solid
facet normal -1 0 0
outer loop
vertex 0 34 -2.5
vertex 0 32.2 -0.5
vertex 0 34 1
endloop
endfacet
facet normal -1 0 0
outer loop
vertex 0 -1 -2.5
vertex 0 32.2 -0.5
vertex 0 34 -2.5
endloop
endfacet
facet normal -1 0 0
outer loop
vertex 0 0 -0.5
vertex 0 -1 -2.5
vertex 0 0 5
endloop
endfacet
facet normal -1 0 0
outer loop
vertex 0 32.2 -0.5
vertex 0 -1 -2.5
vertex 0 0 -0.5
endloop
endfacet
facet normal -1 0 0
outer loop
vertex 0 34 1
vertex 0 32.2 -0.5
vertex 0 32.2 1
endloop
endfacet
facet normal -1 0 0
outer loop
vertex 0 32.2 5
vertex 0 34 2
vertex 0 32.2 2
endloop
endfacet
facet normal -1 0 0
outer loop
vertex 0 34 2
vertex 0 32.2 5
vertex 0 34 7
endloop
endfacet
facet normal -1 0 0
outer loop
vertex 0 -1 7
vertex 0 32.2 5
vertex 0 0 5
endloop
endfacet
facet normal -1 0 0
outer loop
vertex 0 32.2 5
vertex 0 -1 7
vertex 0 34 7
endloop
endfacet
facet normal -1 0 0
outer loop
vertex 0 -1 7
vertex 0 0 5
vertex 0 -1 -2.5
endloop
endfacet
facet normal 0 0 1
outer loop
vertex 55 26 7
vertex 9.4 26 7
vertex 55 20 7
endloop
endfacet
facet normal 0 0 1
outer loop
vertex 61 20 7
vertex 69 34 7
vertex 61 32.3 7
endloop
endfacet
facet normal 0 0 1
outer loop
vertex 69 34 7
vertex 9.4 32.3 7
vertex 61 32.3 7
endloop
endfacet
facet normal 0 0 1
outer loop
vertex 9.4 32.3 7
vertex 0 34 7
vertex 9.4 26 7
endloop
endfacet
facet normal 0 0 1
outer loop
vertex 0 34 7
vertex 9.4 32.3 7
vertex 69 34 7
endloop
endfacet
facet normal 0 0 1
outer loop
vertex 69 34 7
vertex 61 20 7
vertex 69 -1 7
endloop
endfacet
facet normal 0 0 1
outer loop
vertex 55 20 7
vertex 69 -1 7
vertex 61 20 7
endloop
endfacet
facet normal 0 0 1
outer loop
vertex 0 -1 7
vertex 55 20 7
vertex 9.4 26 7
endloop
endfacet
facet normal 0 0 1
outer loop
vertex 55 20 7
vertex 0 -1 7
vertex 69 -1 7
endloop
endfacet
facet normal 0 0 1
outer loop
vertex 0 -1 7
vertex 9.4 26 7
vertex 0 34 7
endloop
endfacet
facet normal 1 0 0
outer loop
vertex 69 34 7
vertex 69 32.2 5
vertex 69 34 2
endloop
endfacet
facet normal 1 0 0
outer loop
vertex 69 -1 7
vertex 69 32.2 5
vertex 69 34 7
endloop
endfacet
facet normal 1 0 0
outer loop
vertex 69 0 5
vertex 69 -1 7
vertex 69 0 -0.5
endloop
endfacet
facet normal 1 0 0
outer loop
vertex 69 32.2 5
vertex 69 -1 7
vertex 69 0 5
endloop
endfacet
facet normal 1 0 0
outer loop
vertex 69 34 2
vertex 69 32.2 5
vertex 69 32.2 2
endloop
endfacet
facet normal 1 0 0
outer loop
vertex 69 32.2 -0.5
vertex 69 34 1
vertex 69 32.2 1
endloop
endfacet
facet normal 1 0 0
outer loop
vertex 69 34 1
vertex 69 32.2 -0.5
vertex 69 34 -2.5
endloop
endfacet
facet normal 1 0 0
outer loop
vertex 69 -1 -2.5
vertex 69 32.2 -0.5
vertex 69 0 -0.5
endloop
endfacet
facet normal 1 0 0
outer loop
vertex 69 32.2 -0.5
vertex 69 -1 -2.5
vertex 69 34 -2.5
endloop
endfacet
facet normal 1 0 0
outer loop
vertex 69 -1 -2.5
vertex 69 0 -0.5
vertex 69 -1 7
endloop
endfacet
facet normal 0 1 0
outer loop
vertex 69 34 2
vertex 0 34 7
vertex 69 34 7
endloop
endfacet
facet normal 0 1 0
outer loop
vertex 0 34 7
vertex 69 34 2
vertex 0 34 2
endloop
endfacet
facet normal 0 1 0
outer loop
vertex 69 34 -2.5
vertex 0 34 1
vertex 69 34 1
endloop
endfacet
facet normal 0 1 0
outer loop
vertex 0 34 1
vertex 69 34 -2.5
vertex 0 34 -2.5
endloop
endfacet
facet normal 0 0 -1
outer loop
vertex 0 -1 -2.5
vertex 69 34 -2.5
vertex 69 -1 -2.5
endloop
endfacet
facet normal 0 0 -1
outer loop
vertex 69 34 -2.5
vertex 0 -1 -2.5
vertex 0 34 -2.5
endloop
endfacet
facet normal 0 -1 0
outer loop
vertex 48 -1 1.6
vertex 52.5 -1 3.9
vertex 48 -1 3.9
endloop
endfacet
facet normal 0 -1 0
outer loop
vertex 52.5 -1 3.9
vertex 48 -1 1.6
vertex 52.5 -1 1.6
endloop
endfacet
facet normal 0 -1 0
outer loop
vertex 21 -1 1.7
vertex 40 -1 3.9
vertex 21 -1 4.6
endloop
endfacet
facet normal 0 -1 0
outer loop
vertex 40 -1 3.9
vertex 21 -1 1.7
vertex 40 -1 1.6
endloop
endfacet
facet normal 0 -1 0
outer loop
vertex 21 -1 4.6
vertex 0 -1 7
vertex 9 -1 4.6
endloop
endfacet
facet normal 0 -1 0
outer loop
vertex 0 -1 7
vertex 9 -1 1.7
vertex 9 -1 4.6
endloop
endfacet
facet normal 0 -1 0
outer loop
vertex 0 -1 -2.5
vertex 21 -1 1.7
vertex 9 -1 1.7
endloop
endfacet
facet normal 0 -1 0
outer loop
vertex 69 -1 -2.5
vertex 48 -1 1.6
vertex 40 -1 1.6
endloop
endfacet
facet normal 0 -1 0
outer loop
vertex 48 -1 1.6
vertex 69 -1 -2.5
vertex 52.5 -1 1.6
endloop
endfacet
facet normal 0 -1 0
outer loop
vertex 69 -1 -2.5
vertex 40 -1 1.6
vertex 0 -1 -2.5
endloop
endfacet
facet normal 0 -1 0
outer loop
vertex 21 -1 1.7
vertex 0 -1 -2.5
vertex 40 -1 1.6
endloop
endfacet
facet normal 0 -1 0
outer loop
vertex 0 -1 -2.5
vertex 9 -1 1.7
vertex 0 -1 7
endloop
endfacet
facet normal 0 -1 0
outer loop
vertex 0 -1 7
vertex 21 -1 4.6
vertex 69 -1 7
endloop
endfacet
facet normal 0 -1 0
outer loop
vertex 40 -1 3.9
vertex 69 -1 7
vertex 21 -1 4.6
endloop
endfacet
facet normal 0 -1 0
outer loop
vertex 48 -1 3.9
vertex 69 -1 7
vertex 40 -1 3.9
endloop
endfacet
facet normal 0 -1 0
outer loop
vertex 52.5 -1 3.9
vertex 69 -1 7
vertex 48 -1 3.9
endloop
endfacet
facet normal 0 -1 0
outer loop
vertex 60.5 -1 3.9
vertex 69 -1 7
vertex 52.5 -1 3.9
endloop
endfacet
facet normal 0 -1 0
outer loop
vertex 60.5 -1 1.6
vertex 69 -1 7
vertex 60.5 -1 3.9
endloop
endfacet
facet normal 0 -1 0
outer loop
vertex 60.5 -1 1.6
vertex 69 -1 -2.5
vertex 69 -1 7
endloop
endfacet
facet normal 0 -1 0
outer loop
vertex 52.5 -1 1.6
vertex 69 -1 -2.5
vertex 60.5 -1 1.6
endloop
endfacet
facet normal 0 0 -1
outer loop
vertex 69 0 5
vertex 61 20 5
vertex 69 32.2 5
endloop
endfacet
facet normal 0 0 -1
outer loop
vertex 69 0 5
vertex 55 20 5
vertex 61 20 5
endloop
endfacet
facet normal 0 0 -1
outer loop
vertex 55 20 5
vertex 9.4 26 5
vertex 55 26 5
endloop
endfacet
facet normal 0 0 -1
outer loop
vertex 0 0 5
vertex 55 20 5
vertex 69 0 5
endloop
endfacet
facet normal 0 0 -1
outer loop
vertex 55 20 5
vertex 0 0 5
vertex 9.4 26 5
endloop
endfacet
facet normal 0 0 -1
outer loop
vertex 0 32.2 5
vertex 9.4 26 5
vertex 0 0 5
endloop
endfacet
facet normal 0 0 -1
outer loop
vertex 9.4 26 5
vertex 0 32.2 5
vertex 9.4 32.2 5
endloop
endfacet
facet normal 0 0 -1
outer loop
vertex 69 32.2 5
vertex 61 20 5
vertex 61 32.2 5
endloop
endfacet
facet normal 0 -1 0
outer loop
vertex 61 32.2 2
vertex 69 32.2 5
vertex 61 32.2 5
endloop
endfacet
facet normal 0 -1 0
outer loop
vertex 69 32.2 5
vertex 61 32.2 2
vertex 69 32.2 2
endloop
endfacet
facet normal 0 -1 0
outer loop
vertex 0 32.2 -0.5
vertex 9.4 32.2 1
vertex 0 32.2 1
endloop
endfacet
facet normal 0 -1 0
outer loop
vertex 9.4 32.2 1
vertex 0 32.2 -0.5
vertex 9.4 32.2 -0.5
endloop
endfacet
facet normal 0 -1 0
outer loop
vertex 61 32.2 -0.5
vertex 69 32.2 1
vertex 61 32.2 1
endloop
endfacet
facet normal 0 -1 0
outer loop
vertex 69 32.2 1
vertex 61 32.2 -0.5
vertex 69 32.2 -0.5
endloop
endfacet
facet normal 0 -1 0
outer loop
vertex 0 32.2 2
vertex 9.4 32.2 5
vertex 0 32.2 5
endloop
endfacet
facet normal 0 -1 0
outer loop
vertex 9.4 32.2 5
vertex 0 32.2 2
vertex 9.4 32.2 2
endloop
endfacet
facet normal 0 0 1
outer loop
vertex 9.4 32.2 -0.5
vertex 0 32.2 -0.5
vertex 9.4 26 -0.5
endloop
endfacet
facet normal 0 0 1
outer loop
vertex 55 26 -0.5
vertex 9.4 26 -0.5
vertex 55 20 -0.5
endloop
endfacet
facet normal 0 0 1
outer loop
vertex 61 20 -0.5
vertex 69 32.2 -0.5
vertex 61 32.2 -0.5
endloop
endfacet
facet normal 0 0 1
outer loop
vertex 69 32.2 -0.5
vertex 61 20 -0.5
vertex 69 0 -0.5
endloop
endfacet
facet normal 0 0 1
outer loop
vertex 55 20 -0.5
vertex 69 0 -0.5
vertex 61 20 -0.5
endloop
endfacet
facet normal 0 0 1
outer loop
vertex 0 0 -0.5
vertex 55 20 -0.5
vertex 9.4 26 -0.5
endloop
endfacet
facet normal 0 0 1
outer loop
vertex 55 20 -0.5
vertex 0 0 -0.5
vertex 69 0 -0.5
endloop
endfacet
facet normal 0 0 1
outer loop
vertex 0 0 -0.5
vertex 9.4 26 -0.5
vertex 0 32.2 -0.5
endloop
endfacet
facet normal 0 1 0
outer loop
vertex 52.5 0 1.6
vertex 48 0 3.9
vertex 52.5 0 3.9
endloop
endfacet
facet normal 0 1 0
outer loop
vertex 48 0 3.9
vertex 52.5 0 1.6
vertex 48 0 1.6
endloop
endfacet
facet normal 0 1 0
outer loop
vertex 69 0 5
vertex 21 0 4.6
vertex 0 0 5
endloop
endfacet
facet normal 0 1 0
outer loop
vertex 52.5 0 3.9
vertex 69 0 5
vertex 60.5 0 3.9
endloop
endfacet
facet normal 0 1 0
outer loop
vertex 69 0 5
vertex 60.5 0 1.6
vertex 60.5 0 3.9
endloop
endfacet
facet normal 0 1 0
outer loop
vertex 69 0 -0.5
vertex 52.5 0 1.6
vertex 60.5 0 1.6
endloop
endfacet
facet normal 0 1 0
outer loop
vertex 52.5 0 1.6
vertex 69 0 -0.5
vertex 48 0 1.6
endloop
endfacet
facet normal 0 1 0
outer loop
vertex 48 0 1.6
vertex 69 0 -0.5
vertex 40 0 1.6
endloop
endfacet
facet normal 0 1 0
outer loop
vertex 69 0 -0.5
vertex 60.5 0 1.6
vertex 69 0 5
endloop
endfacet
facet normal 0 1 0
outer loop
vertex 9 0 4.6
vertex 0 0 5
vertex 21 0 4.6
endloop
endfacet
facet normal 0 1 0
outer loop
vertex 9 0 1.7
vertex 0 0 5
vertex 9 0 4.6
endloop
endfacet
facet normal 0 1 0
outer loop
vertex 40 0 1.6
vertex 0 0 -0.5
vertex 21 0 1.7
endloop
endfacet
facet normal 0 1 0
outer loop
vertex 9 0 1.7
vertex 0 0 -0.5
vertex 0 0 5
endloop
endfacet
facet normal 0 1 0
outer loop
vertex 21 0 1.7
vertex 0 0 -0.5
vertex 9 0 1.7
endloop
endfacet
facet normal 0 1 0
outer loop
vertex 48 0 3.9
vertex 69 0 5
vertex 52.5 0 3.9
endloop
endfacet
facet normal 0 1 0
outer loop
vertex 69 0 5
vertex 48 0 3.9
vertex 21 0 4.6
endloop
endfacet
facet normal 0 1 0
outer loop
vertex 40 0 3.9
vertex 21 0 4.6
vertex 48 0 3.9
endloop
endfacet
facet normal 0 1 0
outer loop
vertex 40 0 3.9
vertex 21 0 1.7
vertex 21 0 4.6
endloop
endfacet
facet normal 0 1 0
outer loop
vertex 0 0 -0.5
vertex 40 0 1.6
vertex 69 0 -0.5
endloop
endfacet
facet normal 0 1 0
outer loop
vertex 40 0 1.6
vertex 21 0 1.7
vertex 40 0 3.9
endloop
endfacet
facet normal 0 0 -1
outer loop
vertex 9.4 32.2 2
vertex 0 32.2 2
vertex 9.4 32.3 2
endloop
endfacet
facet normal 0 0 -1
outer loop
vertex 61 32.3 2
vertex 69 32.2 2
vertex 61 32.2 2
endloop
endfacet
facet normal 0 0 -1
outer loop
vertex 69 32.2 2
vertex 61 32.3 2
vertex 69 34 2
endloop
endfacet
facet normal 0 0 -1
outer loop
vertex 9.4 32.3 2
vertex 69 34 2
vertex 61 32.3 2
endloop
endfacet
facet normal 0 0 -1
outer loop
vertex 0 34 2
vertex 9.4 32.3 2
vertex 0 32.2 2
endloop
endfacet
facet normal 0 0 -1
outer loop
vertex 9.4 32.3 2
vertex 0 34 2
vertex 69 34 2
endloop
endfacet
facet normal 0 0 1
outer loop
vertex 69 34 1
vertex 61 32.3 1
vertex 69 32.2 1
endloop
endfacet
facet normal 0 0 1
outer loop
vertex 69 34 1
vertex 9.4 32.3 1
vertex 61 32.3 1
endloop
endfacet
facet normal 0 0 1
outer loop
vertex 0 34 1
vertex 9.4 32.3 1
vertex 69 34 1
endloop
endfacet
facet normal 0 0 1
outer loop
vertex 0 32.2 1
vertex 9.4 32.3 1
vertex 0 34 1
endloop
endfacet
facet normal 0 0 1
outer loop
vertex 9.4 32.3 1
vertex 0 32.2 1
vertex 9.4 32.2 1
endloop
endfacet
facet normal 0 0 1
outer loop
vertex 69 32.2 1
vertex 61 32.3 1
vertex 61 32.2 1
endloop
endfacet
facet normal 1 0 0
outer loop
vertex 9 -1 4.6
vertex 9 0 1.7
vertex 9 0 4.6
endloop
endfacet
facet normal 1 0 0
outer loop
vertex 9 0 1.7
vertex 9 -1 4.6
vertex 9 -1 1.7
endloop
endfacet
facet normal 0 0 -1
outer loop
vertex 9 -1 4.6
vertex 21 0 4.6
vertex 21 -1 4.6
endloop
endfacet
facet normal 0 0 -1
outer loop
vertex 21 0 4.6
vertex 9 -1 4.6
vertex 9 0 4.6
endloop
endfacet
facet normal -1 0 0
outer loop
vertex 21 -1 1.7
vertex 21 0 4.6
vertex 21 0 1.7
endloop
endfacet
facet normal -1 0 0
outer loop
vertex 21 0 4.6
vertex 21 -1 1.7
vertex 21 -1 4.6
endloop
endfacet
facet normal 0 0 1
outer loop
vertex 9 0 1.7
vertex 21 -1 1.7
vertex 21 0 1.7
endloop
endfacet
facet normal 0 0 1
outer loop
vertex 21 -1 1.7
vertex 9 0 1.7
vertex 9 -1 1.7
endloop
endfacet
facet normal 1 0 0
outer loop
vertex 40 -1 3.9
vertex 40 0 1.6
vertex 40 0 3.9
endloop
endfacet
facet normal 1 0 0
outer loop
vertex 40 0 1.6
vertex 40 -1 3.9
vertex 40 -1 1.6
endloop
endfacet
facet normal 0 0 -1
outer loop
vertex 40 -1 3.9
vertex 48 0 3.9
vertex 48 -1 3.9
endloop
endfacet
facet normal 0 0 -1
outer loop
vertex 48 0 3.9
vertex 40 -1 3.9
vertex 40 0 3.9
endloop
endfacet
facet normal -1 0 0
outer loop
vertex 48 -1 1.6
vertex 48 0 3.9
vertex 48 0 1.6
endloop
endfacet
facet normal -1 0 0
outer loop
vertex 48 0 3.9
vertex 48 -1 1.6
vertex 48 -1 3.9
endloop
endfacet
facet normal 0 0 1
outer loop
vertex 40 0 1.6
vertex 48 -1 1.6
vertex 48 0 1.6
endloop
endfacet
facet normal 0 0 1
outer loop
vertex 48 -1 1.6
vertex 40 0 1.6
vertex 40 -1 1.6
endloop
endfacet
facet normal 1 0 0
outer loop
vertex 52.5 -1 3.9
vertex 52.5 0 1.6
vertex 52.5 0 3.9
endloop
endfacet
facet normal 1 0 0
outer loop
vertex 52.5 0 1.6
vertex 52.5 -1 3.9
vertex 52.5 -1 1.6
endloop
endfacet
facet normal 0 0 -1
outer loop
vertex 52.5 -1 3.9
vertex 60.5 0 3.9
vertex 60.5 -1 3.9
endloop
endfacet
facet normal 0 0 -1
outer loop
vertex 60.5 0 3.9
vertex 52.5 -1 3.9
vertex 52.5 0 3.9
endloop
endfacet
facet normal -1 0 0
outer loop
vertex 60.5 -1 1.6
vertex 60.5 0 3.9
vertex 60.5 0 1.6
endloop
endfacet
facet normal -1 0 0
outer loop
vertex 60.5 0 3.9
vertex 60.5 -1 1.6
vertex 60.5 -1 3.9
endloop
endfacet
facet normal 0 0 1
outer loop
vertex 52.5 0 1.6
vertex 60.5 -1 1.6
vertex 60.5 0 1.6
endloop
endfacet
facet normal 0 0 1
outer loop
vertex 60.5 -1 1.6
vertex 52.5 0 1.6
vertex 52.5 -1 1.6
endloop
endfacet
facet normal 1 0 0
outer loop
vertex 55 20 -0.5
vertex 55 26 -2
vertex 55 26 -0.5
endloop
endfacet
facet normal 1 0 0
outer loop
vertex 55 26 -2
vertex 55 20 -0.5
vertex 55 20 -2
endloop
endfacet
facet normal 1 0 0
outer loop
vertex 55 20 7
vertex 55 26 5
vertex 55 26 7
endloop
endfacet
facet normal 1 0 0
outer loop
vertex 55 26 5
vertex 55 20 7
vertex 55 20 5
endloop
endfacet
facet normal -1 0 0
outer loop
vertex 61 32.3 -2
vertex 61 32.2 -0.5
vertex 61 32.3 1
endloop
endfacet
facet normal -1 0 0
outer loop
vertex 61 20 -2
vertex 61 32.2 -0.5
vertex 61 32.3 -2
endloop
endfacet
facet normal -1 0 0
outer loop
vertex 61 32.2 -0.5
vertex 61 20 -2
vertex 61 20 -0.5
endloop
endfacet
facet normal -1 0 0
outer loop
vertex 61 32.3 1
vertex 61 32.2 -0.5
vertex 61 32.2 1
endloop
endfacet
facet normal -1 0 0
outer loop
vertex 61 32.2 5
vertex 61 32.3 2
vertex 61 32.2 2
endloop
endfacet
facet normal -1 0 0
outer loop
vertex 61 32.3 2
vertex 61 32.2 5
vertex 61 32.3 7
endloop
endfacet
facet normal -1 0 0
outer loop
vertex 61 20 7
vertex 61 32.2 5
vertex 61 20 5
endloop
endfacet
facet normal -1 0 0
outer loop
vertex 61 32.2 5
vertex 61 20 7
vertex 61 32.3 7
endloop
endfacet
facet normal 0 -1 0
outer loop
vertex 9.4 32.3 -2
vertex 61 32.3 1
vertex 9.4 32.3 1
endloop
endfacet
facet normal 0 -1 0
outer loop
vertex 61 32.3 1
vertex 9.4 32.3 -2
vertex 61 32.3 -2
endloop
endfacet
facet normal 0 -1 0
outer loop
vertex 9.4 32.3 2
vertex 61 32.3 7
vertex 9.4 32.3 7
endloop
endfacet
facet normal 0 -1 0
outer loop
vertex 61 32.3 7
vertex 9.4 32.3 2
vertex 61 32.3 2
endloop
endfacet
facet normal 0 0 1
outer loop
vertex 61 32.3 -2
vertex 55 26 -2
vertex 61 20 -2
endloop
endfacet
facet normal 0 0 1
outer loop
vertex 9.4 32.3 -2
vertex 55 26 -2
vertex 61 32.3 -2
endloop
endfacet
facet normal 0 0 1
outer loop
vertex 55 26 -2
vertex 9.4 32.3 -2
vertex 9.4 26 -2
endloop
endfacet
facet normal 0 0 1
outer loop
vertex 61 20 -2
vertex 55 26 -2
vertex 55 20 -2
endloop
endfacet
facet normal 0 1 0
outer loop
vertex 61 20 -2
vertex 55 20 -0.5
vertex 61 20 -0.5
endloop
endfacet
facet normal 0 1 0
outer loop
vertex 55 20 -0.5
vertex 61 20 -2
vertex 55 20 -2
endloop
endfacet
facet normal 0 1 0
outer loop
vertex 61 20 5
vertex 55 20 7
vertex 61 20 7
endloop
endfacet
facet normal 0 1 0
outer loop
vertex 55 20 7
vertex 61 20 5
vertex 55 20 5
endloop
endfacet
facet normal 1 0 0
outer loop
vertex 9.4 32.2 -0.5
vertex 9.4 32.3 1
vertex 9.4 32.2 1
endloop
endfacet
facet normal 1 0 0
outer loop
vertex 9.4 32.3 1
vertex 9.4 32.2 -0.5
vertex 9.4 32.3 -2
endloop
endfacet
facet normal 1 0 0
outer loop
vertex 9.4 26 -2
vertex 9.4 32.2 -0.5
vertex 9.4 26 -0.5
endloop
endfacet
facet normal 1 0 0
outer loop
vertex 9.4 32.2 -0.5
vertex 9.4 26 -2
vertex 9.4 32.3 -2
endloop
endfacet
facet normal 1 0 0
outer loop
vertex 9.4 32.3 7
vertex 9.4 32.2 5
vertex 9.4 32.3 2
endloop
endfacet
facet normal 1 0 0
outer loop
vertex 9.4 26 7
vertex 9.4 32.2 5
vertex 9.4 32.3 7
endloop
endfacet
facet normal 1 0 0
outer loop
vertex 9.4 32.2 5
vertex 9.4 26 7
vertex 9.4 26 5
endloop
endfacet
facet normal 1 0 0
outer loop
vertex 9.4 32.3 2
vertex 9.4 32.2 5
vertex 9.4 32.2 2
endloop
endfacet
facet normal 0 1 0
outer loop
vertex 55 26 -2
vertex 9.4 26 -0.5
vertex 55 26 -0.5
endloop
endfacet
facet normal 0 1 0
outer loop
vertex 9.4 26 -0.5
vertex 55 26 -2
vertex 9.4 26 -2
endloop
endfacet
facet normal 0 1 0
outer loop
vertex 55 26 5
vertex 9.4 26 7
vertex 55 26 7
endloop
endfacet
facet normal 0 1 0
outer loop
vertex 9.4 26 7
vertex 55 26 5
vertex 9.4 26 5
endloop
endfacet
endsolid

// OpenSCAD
//*
difference(){
//case
color([0,1,0],.3)
translate([0,-1,-2.5]) cube([69,35,9.5]);

//pi
color([1,0,0],.3)
translate([0,0,-0.5])
cube([69,32.2,5.5]);
translate([0,0,1])
cube([69,35,1]);

//hdmi
translate([9,-2,1.7]) cube([12,12,2.9]);

//usb
translate([40  ,-2,1.6]) cube([8,12,2.3]);
translate([52.5,-2,1.6]) cube([8,12,2.3]);

//gpio
translate([55 ,20,-2]) cube([6 ,12.3,11.7]);
translate([9.4,26  ,-2]) cube([45.6,6.3,11.7]);
}
//*/

/*
//ref piBoard
translate([-0.5,-1.8,-12.9])
color([0,0,1],0.3)
import("/home/wato/Downloads/raspberrypizerov13.stl");
//*/
